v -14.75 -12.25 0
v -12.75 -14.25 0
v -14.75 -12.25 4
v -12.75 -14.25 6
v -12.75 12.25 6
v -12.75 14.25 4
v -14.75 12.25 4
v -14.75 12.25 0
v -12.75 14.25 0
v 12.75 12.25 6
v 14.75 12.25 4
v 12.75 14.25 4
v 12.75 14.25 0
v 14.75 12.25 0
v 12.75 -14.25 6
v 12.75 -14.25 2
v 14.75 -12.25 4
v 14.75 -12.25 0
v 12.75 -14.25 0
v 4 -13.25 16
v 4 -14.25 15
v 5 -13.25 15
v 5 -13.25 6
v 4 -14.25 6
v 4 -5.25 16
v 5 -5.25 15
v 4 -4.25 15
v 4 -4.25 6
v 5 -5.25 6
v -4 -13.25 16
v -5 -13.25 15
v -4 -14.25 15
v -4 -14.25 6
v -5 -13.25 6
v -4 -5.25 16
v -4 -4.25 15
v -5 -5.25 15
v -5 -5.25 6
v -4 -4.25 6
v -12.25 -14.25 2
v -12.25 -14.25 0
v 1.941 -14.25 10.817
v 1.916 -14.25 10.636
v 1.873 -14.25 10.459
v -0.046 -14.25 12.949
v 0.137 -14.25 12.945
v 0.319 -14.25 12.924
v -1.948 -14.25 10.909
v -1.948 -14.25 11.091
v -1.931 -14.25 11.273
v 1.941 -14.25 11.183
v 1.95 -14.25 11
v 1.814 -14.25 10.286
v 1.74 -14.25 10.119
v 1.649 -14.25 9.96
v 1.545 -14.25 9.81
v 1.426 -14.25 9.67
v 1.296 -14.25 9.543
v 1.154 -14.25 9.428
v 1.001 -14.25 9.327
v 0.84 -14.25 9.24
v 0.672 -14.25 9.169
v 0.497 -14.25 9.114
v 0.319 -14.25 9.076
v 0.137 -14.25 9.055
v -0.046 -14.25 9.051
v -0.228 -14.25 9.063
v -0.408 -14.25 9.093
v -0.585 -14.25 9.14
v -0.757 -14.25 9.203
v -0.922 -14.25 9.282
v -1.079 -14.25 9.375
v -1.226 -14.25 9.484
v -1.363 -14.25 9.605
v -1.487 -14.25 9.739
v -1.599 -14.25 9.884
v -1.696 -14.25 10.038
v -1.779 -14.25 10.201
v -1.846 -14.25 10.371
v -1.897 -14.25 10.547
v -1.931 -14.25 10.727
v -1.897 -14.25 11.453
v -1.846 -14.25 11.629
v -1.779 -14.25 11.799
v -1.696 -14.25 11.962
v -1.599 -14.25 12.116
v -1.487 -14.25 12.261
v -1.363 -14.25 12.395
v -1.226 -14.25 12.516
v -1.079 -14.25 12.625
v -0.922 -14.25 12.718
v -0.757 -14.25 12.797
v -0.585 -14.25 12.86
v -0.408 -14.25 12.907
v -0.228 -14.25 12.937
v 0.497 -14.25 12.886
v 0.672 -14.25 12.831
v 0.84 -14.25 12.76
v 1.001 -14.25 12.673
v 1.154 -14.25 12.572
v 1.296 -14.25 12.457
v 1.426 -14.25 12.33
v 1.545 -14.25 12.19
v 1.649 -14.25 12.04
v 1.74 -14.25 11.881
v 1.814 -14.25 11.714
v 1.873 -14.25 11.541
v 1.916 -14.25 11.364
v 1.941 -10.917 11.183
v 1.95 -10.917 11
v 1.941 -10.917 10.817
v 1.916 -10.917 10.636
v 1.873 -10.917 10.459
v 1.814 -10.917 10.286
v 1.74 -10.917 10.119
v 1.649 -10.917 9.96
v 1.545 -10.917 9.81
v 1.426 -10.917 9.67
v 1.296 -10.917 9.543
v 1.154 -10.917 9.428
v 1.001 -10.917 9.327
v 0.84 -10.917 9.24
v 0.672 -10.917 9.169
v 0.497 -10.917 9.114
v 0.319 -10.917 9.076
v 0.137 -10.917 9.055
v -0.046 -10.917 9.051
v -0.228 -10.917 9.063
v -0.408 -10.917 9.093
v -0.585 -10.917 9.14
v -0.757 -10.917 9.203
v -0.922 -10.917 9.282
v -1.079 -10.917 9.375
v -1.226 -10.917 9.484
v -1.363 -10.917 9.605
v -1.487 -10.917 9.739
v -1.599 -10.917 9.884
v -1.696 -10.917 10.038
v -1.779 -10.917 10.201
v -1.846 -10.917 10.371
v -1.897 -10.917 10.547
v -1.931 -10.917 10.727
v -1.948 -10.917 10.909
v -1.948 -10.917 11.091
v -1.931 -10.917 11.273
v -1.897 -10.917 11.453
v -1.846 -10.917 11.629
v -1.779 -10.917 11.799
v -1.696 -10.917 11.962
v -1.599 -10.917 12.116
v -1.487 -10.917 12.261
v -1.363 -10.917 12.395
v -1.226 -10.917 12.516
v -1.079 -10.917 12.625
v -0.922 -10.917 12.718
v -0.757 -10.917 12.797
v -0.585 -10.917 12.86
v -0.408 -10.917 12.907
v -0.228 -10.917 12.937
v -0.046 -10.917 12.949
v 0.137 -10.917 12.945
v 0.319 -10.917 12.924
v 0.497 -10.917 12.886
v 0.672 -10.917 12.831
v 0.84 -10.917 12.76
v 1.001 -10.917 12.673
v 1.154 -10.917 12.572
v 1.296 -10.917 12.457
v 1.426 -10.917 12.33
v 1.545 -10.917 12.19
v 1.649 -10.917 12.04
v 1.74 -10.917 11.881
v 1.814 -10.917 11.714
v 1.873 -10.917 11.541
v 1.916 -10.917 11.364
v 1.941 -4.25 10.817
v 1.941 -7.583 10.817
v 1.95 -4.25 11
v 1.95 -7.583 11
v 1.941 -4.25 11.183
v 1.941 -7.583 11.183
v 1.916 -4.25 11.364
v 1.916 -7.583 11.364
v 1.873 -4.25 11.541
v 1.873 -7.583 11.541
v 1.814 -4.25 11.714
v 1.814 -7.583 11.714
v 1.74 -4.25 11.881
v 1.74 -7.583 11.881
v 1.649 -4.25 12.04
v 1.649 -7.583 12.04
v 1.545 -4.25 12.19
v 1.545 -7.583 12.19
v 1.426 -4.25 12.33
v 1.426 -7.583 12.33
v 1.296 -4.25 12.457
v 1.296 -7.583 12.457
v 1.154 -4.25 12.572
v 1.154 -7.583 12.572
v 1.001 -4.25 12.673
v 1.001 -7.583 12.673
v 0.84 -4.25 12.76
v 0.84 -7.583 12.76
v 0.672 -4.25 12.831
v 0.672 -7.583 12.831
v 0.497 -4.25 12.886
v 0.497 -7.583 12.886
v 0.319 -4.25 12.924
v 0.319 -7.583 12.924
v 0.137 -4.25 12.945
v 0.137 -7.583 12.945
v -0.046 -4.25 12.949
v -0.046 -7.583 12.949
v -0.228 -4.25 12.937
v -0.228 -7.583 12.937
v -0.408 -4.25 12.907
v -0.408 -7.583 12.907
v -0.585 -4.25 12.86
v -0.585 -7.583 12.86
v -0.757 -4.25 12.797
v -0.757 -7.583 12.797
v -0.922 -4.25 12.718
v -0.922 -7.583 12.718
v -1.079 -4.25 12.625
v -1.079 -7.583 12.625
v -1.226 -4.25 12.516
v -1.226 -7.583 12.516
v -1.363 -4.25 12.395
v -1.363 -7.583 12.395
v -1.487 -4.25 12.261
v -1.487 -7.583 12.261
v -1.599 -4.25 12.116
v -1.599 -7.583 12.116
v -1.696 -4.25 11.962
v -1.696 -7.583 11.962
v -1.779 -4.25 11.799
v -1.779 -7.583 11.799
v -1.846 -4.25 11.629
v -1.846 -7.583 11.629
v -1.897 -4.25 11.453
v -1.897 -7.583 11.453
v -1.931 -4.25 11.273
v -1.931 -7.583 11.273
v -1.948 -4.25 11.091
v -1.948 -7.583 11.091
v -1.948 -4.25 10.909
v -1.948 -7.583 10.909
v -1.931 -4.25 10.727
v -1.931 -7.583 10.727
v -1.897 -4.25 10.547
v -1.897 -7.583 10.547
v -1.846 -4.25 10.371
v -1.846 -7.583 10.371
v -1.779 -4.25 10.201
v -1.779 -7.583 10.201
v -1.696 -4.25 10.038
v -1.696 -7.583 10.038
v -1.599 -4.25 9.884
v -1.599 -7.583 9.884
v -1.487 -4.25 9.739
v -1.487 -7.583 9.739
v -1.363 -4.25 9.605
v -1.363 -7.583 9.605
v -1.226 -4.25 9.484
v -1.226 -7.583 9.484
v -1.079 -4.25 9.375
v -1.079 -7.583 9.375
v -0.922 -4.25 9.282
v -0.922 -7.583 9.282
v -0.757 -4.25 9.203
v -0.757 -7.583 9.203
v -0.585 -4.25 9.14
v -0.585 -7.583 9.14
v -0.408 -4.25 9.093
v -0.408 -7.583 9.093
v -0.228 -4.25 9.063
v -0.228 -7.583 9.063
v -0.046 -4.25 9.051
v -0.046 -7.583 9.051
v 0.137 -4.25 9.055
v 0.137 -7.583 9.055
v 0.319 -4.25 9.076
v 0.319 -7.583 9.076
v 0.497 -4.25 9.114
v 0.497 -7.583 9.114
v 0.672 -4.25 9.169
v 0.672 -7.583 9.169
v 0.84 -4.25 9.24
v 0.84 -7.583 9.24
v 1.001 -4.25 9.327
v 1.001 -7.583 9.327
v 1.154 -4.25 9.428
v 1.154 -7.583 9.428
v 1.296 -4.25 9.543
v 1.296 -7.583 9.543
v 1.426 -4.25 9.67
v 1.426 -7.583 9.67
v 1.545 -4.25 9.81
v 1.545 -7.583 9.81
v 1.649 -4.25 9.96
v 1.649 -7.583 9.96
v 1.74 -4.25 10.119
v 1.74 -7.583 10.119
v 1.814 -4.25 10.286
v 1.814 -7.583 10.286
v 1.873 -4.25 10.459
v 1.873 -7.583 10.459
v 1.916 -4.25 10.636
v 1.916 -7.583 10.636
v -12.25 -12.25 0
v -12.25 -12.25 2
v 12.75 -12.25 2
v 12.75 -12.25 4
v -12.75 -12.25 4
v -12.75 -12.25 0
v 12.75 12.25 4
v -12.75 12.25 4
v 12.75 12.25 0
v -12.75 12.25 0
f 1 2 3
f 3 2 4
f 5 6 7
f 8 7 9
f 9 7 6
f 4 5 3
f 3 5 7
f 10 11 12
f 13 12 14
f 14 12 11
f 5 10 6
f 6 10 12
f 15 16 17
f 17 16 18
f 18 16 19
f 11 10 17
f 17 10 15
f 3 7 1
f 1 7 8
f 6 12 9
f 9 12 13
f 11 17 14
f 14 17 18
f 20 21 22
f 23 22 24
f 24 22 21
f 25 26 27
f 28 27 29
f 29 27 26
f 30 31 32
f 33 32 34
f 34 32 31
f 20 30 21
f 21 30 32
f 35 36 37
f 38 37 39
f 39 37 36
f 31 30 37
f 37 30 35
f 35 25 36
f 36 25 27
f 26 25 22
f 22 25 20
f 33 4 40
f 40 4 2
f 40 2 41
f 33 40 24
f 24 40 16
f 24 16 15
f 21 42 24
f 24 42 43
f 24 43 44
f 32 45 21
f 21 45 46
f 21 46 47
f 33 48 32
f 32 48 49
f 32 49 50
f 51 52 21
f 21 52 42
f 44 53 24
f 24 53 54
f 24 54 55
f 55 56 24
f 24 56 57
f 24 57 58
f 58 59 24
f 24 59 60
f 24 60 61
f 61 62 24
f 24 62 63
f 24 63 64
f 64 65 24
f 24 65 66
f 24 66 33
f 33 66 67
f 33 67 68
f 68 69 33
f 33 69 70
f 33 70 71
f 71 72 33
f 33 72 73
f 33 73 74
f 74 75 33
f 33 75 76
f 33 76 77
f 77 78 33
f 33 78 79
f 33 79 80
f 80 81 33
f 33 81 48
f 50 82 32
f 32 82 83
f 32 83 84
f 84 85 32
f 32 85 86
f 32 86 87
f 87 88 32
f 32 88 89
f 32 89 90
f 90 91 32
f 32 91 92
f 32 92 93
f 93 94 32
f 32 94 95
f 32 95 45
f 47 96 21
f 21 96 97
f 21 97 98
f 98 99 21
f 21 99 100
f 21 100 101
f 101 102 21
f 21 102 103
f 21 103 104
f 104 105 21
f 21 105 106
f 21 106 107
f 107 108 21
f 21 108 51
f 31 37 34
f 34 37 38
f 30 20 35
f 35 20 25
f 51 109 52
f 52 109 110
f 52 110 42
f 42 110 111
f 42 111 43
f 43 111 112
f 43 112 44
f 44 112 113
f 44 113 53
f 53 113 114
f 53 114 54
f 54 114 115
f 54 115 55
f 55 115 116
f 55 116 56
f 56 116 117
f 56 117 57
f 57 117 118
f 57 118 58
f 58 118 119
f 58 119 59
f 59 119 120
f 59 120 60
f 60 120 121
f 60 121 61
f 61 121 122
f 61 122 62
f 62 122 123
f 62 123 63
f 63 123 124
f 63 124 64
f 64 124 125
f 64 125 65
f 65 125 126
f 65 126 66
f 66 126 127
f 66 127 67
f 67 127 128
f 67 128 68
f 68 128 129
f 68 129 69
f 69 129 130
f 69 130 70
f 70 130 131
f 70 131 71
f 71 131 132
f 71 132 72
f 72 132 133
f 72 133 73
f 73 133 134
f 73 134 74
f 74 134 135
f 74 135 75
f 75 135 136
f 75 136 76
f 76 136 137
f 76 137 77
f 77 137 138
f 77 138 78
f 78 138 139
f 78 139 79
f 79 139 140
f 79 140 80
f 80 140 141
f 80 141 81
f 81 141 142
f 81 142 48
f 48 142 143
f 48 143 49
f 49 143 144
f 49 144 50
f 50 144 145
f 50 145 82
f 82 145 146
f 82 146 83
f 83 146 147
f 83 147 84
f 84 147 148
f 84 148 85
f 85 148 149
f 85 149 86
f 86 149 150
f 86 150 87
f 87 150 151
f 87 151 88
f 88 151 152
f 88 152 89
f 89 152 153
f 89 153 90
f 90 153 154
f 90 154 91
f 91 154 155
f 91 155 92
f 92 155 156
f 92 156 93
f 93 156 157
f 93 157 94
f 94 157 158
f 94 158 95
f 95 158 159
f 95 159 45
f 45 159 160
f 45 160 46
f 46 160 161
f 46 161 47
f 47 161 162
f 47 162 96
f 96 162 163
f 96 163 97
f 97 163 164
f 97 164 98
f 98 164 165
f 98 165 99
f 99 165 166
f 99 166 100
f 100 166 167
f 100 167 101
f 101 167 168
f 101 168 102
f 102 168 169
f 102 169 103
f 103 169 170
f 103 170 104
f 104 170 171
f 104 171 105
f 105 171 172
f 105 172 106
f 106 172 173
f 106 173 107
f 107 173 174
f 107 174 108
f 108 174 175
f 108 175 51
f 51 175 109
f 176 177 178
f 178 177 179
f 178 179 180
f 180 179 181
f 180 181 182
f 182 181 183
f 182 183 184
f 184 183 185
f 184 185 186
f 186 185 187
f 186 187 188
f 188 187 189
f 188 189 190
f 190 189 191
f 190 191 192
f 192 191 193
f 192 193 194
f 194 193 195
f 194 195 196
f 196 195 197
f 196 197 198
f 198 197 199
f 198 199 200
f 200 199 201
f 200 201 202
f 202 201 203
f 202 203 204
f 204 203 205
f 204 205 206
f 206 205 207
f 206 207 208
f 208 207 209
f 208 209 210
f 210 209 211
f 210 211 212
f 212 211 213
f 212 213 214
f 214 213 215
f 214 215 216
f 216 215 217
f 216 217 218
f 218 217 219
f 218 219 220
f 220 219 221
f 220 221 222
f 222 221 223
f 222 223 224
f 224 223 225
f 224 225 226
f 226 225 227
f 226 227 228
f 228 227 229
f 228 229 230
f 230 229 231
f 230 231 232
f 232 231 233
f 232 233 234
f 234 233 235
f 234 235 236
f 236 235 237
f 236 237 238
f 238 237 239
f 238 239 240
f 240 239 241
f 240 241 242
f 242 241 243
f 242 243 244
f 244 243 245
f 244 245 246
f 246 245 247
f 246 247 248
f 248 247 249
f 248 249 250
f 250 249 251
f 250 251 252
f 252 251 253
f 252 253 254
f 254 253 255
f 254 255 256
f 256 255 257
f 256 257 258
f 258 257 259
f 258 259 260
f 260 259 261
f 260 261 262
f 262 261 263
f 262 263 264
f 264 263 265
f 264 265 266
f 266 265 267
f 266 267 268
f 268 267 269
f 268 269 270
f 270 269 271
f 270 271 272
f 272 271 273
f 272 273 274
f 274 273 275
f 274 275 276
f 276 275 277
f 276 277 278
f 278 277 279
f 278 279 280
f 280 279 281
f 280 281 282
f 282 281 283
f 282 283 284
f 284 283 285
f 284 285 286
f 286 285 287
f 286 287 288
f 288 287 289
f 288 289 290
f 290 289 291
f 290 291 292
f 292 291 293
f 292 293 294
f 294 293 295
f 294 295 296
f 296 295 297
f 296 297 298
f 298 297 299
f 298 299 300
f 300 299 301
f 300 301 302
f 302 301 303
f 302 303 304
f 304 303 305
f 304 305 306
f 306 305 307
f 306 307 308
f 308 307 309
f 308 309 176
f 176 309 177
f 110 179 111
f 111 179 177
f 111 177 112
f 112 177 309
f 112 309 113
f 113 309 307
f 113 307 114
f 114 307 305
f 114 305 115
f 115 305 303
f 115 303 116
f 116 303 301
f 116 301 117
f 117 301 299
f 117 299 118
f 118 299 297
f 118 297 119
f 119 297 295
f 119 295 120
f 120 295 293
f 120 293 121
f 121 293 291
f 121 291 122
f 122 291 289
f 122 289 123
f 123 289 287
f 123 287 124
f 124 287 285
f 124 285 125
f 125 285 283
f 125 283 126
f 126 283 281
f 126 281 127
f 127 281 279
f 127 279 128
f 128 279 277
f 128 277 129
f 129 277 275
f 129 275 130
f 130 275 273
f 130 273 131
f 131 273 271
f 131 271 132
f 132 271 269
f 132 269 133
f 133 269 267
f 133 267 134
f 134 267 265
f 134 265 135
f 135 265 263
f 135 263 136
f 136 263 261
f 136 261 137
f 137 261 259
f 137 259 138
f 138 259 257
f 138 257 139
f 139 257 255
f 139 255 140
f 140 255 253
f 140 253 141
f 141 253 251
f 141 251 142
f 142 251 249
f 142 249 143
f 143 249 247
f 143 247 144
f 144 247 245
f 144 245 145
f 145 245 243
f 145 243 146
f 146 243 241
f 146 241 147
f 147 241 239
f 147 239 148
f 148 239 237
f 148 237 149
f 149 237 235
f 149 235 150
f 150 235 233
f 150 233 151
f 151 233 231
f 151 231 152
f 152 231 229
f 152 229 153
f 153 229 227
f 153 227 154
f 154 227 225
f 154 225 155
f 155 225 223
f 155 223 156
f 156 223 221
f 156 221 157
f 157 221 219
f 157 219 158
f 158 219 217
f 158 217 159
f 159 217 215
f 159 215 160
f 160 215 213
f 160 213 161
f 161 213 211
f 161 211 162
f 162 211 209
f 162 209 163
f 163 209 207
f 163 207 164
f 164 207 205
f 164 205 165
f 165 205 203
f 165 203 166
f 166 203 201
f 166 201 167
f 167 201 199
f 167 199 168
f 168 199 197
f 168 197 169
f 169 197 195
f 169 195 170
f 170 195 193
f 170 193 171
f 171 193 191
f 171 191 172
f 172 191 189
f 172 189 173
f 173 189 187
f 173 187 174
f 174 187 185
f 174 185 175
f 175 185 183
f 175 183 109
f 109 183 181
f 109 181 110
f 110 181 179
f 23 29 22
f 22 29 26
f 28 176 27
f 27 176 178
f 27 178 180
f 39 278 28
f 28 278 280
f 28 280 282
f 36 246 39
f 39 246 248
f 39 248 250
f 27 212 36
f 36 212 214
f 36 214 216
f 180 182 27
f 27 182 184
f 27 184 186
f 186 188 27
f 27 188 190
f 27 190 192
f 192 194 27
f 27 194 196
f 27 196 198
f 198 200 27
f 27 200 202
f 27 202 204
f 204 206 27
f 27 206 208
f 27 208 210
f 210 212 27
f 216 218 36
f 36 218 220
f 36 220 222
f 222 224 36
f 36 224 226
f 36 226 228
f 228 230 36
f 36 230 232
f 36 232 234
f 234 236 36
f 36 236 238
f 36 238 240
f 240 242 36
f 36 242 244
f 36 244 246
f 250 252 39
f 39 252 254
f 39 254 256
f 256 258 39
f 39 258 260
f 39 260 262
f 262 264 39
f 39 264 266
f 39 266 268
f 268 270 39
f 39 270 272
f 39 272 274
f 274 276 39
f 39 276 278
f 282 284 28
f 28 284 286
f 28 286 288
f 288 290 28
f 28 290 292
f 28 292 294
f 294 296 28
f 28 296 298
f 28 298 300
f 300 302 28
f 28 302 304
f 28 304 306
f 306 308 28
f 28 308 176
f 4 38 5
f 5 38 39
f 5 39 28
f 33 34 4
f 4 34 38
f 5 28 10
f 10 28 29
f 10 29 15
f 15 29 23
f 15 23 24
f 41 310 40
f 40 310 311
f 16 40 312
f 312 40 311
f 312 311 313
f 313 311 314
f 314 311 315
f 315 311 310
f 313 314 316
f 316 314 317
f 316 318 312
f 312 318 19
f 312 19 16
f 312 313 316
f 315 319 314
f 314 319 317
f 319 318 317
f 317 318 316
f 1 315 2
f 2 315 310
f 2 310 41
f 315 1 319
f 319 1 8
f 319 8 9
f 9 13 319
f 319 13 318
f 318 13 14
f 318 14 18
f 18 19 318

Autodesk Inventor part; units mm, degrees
ref_plane "YZ Plane" through (0, 0, 0) normal (1, 0, 0) x (0, 1, 0)
ref_plane "XZ Plane" through (0, 0, 0) normal (0, 1, 0) x (-1, 0, 0)
ref_plane "XY Plane" through (0, 0, 0) normal (0, 0, 1) x (1, 0, 0)
sketch "Skizze1" plane through (0, 0, 0) normal (0, 0, 1) x (1, 0, 0)
  point P0 (0, 0)
sketch "Skizze2" plane through (0, 0, 0) normal (0, 0, 1) x (1, 0, 0)
  line L0 (-12.75, 12.25) -> (12.75, 12.25)
  line L1 (12.75, 12.25) -> (12.75, -12.25)
  line L2 (12.75, -12.25) -> (-12.75, -12.25)
  line L3 (-12.75, -12.25) -> (-12.75, 12.25)
  line L4 (0, 19.95) -> (0, -19.95) projected
  line L5 (-20.65, 0) -> (20.65, 0) projected
  line L6 (-14.75, 14.25) -> (14.75, 14.25)
  line L7 (14.75, 14.25) -> (14.75, -14.25)
  line L8 (14.75, -14.25) -> (-14.75, -14.25)
  line L9 (-14.75, -14.25) -> (-14.75, 14.25)
  point P0 (0, 0)
  dimension "d0" = 25.5
  dimension "d1" = 24.5
  dimension "d2" = 2
  dimension "d3" = 2
  dimension "d4" = 2
  dimension "d5" = 2
extrude "Extrusion1" add sketch "Skizze2" along normal blind 4 contours L3 L5 L9 L6 L4 L0 | L4 L6 L7 L5 L1 L0 | L3 L2 L4 L8 L9 L5 | L5 L7 L8 L4 L2 L1
sketch "Skizze3" plane through (0, 0, 4) normal (0, 0, 1) x (1, 0, 0)
  line L0 (14.75, -14.25) -> (-14.75, -14.25) projected
  line L1 (-14.75, 14.25) -> (14.75, 14.25)
  line L2 (14.75, 14.25) -> (14.75, -14.25)
  line L3 (14.75, -14.25) -> (-14.75, -14.25)
  line L4 (-14.75, -14.25) -> (-14.75, 14.25)
  point P0 (0, 0)
extrude "Extrusion2" add sketch "Skizze3" along normal blind 2
sketch "Skizze4" plane through (0, 0, 0) normal (0, 0, -1) x (-1, 0, 0)
  line L0 (12.75, -12.25) -> (-12.75, -12.25) projected
  line L1 (-12.75, -12.25) -> (12.25, -12.25)
  line L2 (12.25, -12.25) -> (12.25, -17.2138)
  line L3 (12.25, -17.2138) -> (-12.75, -17.2138)
  line L4 (-12.75, -17.2138) -> (-12.75, -12.25)
  point P0 (0, 0)
extrude "Extrusion3" cut sketch "Skizze4" against normal blind 2
sketch "Skizze5" plane through (0, 0, 0) normal (0, 0, -1) x (-1, 0, 0)
  circle A0 centre (0.25, 13.25) radius 0.5
  line L0 (14.75, 14.25) -> (-14.75, 14.25) projected
  line L1 (14.75, -14.25) -> (14.75, 14.25) projected
  line L2 (-14.75, 14.25) -> (-14.75, -14.25) projected
  circle A1 centre (-9.75, 13.25) radius 0.5
  circle A2 centre (10.25, 13.25) radius 0.5
  circle A3 centre (-13.75, 0.25) radius 0.5
  circle A4 centre (-13.75, -9.75) radius 0.5
  circle A5 centre (-13.75, 10.25) radius 0.5
  line L3 (0, -19.95) -> (0, 19.95) projected
  circle A6 centre (13.75, 0.25) radius 0.5
  circle A7 centre (13.75, -9.75) radius 0.5
  circle A8 centre (13.75, 10.25) radius 0.5
  point P0 (0, 0)
  point P1 (13.75, 14.25)
  point P2 (-13.75, 14.25)
  point P3 (14.75, -13.25)
  point P4 (14.75, 13.25)
  point P5 (-14.75, 13.25)
  point P6 (-14.75, -13.25)
  dimension "d15" = 1
  dimension "d16" = 1
  dimension "d17" = 1
  dimension "d18" = 1
  dimension "d19" = 10
  dimension "d20" = 10
  dimension "d21" = 1
  dimension "d22" = 1
  dimension "d23" = 1
  dimension "d24" = 1
  dimension "d25" = 10
  dimension "d26" = 10
sketch "Skizze6" plane through (0, 0, 6) normal (0, 0, 1) x (1, 0, 0)
  line L0 (-5, -4.25) -> (5, -4.25)
  line L1 (5, -4.25) -> (5, -14.25)
  line L2 (5, -14.25) -> (-5, -14.25)
  line L3 (-5, -14.25) -> (-5, -4.25)
  line L4 (0, 19.95) -> (0, -19.95) projected
  line L5 (-20.65, 0) -> (20.65, 0) projected
  line L6 (-13.75, -14.25) -> (13.75, -14.25) projected
  point P0 (0, 0)
  dimension "d29" = 10
  dimension "d30" = 10
  dimension "d59" = 0
extrude "Extrusion5" add sketch "Skizze6" along normal blind 10
sketch "Skizze9" plane through (-5, -4.25, 6) normal (0, 1, 0) x (1, 0, 0)
  circle A0 centre (5, -5) radius 1.95
  line L0 (10, -10) -> (0, -10) projected
  point P0 (5, 6)
  dimension "d52" = 3.9
  dimension "d53" = 5
extrude "Extrusion8" cut sketch "Skizze9" against normal blind 26
chamfer "Fase4" distance 1 angle 45 8 edges at (-5, -9.25, 16) (0, -14.25, 16) (5, -14.25, 11) (5, -4.25, 11) (0, -4.25, 16) (-5, -4.25, 11) (-5, -14.25, 11) (5, -9.25, 16)
chamfer "Fase5" distance 2 angle 45 7 edges at (14.75, -14.25, 3) (14.75, 0, 6) (0, 14.25, 6) (-14.75, 0, 6) (-14.75, -14.25, 3) (-14.75, 14.25, 3) (14.75, 14.25, 3)
properties part number "20181106_Raspberrycamhalter"
